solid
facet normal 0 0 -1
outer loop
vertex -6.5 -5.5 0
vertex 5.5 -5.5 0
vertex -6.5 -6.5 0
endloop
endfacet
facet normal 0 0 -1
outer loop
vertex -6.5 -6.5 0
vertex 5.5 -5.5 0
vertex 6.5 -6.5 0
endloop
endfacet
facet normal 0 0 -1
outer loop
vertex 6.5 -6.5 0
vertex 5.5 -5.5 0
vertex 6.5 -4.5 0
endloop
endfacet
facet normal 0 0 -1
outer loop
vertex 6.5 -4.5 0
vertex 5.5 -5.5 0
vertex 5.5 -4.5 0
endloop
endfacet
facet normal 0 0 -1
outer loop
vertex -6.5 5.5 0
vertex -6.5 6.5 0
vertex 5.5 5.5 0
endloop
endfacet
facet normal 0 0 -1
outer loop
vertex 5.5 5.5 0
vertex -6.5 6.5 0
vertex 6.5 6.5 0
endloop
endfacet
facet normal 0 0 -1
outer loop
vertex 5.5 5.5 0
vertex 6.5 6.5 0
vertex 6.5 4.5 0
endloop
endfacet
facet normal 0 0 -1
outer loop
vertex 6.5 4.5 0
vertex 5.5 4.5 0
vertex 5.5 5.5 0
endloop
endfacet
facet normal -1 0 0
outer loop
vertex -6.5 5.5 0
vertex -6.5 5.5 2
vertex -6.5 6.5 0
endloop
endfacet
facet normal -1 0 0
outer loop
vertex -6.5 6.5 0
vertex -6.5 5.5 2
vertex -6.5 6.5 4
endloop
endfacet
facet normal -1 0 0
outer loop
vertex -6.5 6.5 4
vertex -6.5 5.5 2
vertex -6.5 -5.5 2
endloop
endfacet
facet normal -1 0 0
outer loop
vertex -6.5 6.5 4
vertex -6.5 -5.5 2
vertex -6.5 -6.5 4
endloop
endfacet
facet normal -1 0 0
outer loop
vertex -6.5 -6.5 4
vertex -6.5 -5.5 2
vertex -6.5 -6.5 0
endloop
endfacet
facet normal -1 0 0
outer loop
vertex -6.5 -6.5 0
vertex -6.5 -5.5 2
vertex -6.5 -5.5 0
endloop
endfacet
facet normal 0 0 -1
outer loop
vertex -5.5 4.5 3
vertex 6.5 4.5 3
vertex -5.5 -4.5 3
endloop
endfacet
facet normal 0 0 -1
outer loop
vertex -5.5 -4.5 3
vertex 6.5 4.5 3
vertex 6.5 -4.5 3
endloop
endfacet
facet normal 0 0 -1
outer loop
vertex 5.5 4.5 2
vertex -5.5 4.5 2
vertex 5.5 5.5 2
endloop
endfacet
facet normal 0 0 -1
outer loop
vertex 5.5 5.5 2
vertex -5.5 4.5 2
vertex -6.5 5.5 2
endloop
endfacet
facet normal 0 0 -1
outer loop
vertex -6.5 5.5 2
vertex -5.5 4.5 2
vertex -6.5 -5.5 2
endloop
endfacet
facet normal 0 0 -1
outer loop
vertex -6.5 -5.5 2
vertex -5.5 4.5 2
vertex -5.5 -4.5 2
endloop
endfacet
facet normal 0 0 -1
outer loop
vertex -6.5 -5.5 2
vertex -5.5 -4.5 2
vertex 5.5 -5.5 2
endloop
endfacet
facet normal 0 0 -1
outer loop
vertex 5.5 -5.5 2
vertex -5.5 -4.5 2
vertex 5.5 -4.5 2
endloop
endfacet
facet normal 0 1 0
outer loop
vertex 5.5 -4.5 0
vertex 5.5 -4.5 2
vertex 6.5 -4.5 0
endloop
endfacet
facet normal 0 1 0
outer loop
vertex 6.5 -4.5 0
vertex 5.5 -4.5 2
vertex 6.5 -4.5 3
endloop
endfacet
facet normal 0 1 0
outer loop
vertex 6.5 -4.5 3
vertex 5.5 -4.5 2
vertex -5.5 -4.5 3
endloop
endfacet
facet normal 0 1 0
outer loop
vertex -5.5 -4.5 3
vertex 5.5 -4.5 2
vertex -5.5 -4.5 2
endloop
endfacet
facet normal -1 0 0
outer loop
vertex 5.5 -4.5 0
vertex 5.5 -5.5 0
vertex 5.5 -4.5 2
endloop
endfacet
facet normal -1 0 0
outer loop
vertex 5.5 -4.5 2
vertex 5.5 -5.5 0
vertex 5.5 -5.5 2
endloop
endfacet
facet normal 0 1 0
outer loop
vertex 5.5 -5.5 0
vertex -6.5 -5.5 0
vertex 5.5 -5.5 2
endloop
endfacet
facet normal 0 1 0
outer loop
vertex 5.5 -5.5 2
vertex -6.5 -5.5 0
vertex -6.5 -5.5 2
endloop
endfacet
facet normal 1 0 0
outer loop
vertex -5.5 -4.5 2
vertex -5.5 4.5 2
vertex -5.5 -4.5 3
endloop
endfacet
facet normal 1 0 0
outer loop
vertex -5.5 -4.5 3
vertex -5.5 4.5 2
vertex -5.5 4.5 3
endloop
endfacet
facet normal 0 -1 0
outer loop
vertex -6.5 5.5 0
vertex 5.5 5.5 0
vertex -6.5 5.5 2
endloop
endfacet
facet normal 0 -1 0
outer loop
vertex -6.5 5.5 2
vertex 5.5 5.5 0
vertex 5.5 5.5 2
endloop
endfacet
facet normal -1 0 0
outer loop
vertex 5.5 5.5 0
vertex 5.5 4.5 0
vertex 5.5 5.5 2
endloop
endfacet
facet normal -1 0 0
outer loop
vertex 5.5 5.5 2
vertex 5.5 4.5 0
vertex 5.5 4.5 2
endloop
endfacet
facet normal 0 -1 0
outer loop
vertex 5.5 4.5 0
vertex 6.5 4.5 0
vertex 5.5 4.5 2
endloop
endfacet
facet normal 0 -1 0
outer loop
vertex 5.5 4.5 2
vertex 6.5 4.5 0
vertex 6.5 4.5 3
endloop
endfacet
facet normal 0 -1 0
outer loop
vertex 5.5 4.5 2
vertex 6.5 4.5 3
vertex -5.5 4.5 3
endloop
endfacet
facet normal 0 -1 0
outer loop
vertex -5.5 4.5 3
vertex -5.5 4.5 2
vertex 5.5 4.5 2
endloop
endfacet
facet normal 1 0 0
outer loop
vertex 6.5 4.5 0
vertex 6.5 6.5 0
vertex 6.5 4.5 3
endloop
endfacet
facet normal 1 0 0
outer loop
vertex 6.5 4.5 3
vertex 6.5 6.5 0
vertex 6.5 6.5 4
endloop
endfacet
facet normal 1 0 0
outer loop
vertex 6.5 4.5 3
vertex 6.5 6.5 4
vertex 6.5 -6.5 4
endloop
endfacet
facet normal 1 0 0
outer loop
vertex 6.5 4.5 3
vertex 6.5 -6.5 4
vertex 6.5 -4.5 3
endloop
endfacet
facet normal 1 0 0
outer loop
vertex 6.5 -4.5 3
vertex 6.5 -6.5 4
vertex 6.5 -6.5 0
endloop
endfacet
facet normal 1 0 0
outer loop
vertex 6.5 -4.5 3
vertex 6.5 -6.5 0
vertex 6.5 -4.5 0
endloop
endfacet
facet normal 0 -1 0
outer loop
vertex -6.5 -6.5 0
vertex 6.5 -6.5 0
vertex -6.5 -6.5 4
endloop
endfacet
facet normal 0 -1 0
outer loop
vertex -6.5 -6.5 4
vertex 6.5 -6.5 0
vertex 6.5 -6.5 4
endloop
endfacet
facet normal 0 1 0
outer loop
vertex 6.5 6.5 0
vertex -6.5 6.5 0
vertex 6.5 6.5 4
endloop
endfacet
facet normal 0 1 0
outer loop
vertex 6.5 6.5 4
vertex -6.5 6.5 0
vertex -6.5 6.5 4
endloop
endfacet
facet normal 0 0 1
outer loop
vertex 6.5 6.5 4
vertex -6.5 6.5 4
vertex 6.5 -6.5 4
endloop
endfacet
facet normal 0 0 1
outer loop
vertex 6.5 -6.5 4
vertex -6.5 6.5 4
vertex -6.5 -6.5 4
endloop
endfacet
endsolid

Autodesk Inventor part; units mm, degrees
ref_plane "YZ Plane" through (0, 0, 0) normal (1, 0, 0) x (0, 1, 0)
ref_plane "XZ Plane" through (0, 0, 0) normal (0, 1, 0) x (-1, 0, 0)
ref_plane "XY Plane" through (0, 0, 0) normal (0, 0, 1) x (1, 0, 0)
sketch "Sketch1" plane through (0, 0, 0) normal (0, 0, 1) x (1, 0, 0)
  line L0 (-6.5, -6.5) -> (6.5, -6.5)
  line L1 (6.5, -6.5) -> (6.5, 6.5)
  line L2 (6.5, 6.5) -> (-6.5, 6.5)
  line L3 (-6.5, 6.5) -> (-6.5, -6.5)
  line L4 (-6.5, -6.5) -> (6.5, 6.5) construction
  line L5 (6.5, -6.5) -> (-6.5, 6.5) construction
  line L6 (-5.5, -5.5) -> (5.5, -5.5)
  line L7 (5.5, -5.5) -> (5.5, 5.5)
  line L8 (5.5, 5.5) -> (-5.5, 5.5)
  line L9 (-5.5, 5.5) -> (-5.5, -5.5)
  line L10 (-5.5, -5.5) -> (5.5, 5.5) construction
  line L11 (5.5, -5.5) -> (-5.5, 5.5) construction
  line L12 (5.5, 5.5) -> (6.5, 5.5)
  line L13 (6.5, 5.5) -> (6.5, 4.5)
  line L14 (6.5, 4.5) -> (5.5, 4.5)
  line L15 (5.5, 4.5) -> (5.5, 5.5)
  line L16 (5.5, -5.5) -> (6.5, -5.5)
  line L17 (6.5, -5.5) -> (6.5, -4.5)
  line L18 (6.5, -4.5) -> (5.5, -4.5)
  line L19 (5.5, -4.5) -> (5.5, -5.5)
  point P0 (0, 0)
  point P1 (5.5, -4.5)
  point P2 (5.5, 4.5)
  dimension "d0" = 13
  dimension "d1" = 13
  dimension "d2" = 11
  dimension "d3" = 11
  dimension "d4" = 1
  dimension "d5" = 1
extrude "Extrusion1" add sketch "Sketch1" along normal blind 4
extrude "Extrusion2" cut sketch "Sketch1" along normal blind 2 contours L18 L7 L14 L1 | L6 L9 L8 L7
sketch "Sketch2" plane through (0, 0, 2) normal (0, 0, -1) x (-1, 0, 0)
  line L0 (-6.5, -6.5) -> (-6.5, 6.5) projected
  line L1 (-5.5, -4.5) -> (-6.5, -4.5) projected
  line L2 (-6.5, 4.5) -> (-5.5, 4.5)
  line L3 (-5.5, 4.5) -> (-5.5, -4.5)
  line L4 (-5.5, -4.5) -> (-6.5, -4.5)
  line L5 (-6.5, -4.5) -> (-6.5, 4.5)
  line L6 (-6.5, 4.5) -> (-5.5, 4.5) projected
  line L7 (5.5, 5.5) -> (5.5, -5.5) projected
  line L8 (-5.5, 4.5) -> (5.5, 4.5)
  line L9 (5.5, 4.5) -> (5.5, -4.5)
  line L10 (5.5, -4.5) -> (-5.5, -4.5)
  line L11 (-5.5, -4.5) -> (-5.5, 4.5)
  point P0 (0, 0)
  dimension "d18" = 0
extrude "Extrusion3" cut sketch "Sketch2" against normal blind 1
sketch "Sketch3" plane through (0, 0, 0) normal (0, 0, -1) x (-1, 0, 0)
  line L0 (6.5, 6.5) -> (6.5, -6.5) projected
  line L1 (5.5, 5.5) -> (5.5, -5.5) projected
  line L2 (6.5, 5.5) -> (5.5, 5.5)
  line L3 (5.5, 5.5) -> (5.5, -5.5)
  line L4 (5.5, -5.5) -> (6.5, -5.5)
  line L5 (6.5, -5.5) -> (6.5, 5.5)
  line L6 (-5.5, 5.5) -> (5.5, 5.5) projected
  point P0 (0, 0)
  point P1 (5.5, 5.5)
  dimension "d15" = 0
extrude "Extrusion4" cut sketch "Sketch3" against normal blind 2
properties part number "Optical module_lid_2"
